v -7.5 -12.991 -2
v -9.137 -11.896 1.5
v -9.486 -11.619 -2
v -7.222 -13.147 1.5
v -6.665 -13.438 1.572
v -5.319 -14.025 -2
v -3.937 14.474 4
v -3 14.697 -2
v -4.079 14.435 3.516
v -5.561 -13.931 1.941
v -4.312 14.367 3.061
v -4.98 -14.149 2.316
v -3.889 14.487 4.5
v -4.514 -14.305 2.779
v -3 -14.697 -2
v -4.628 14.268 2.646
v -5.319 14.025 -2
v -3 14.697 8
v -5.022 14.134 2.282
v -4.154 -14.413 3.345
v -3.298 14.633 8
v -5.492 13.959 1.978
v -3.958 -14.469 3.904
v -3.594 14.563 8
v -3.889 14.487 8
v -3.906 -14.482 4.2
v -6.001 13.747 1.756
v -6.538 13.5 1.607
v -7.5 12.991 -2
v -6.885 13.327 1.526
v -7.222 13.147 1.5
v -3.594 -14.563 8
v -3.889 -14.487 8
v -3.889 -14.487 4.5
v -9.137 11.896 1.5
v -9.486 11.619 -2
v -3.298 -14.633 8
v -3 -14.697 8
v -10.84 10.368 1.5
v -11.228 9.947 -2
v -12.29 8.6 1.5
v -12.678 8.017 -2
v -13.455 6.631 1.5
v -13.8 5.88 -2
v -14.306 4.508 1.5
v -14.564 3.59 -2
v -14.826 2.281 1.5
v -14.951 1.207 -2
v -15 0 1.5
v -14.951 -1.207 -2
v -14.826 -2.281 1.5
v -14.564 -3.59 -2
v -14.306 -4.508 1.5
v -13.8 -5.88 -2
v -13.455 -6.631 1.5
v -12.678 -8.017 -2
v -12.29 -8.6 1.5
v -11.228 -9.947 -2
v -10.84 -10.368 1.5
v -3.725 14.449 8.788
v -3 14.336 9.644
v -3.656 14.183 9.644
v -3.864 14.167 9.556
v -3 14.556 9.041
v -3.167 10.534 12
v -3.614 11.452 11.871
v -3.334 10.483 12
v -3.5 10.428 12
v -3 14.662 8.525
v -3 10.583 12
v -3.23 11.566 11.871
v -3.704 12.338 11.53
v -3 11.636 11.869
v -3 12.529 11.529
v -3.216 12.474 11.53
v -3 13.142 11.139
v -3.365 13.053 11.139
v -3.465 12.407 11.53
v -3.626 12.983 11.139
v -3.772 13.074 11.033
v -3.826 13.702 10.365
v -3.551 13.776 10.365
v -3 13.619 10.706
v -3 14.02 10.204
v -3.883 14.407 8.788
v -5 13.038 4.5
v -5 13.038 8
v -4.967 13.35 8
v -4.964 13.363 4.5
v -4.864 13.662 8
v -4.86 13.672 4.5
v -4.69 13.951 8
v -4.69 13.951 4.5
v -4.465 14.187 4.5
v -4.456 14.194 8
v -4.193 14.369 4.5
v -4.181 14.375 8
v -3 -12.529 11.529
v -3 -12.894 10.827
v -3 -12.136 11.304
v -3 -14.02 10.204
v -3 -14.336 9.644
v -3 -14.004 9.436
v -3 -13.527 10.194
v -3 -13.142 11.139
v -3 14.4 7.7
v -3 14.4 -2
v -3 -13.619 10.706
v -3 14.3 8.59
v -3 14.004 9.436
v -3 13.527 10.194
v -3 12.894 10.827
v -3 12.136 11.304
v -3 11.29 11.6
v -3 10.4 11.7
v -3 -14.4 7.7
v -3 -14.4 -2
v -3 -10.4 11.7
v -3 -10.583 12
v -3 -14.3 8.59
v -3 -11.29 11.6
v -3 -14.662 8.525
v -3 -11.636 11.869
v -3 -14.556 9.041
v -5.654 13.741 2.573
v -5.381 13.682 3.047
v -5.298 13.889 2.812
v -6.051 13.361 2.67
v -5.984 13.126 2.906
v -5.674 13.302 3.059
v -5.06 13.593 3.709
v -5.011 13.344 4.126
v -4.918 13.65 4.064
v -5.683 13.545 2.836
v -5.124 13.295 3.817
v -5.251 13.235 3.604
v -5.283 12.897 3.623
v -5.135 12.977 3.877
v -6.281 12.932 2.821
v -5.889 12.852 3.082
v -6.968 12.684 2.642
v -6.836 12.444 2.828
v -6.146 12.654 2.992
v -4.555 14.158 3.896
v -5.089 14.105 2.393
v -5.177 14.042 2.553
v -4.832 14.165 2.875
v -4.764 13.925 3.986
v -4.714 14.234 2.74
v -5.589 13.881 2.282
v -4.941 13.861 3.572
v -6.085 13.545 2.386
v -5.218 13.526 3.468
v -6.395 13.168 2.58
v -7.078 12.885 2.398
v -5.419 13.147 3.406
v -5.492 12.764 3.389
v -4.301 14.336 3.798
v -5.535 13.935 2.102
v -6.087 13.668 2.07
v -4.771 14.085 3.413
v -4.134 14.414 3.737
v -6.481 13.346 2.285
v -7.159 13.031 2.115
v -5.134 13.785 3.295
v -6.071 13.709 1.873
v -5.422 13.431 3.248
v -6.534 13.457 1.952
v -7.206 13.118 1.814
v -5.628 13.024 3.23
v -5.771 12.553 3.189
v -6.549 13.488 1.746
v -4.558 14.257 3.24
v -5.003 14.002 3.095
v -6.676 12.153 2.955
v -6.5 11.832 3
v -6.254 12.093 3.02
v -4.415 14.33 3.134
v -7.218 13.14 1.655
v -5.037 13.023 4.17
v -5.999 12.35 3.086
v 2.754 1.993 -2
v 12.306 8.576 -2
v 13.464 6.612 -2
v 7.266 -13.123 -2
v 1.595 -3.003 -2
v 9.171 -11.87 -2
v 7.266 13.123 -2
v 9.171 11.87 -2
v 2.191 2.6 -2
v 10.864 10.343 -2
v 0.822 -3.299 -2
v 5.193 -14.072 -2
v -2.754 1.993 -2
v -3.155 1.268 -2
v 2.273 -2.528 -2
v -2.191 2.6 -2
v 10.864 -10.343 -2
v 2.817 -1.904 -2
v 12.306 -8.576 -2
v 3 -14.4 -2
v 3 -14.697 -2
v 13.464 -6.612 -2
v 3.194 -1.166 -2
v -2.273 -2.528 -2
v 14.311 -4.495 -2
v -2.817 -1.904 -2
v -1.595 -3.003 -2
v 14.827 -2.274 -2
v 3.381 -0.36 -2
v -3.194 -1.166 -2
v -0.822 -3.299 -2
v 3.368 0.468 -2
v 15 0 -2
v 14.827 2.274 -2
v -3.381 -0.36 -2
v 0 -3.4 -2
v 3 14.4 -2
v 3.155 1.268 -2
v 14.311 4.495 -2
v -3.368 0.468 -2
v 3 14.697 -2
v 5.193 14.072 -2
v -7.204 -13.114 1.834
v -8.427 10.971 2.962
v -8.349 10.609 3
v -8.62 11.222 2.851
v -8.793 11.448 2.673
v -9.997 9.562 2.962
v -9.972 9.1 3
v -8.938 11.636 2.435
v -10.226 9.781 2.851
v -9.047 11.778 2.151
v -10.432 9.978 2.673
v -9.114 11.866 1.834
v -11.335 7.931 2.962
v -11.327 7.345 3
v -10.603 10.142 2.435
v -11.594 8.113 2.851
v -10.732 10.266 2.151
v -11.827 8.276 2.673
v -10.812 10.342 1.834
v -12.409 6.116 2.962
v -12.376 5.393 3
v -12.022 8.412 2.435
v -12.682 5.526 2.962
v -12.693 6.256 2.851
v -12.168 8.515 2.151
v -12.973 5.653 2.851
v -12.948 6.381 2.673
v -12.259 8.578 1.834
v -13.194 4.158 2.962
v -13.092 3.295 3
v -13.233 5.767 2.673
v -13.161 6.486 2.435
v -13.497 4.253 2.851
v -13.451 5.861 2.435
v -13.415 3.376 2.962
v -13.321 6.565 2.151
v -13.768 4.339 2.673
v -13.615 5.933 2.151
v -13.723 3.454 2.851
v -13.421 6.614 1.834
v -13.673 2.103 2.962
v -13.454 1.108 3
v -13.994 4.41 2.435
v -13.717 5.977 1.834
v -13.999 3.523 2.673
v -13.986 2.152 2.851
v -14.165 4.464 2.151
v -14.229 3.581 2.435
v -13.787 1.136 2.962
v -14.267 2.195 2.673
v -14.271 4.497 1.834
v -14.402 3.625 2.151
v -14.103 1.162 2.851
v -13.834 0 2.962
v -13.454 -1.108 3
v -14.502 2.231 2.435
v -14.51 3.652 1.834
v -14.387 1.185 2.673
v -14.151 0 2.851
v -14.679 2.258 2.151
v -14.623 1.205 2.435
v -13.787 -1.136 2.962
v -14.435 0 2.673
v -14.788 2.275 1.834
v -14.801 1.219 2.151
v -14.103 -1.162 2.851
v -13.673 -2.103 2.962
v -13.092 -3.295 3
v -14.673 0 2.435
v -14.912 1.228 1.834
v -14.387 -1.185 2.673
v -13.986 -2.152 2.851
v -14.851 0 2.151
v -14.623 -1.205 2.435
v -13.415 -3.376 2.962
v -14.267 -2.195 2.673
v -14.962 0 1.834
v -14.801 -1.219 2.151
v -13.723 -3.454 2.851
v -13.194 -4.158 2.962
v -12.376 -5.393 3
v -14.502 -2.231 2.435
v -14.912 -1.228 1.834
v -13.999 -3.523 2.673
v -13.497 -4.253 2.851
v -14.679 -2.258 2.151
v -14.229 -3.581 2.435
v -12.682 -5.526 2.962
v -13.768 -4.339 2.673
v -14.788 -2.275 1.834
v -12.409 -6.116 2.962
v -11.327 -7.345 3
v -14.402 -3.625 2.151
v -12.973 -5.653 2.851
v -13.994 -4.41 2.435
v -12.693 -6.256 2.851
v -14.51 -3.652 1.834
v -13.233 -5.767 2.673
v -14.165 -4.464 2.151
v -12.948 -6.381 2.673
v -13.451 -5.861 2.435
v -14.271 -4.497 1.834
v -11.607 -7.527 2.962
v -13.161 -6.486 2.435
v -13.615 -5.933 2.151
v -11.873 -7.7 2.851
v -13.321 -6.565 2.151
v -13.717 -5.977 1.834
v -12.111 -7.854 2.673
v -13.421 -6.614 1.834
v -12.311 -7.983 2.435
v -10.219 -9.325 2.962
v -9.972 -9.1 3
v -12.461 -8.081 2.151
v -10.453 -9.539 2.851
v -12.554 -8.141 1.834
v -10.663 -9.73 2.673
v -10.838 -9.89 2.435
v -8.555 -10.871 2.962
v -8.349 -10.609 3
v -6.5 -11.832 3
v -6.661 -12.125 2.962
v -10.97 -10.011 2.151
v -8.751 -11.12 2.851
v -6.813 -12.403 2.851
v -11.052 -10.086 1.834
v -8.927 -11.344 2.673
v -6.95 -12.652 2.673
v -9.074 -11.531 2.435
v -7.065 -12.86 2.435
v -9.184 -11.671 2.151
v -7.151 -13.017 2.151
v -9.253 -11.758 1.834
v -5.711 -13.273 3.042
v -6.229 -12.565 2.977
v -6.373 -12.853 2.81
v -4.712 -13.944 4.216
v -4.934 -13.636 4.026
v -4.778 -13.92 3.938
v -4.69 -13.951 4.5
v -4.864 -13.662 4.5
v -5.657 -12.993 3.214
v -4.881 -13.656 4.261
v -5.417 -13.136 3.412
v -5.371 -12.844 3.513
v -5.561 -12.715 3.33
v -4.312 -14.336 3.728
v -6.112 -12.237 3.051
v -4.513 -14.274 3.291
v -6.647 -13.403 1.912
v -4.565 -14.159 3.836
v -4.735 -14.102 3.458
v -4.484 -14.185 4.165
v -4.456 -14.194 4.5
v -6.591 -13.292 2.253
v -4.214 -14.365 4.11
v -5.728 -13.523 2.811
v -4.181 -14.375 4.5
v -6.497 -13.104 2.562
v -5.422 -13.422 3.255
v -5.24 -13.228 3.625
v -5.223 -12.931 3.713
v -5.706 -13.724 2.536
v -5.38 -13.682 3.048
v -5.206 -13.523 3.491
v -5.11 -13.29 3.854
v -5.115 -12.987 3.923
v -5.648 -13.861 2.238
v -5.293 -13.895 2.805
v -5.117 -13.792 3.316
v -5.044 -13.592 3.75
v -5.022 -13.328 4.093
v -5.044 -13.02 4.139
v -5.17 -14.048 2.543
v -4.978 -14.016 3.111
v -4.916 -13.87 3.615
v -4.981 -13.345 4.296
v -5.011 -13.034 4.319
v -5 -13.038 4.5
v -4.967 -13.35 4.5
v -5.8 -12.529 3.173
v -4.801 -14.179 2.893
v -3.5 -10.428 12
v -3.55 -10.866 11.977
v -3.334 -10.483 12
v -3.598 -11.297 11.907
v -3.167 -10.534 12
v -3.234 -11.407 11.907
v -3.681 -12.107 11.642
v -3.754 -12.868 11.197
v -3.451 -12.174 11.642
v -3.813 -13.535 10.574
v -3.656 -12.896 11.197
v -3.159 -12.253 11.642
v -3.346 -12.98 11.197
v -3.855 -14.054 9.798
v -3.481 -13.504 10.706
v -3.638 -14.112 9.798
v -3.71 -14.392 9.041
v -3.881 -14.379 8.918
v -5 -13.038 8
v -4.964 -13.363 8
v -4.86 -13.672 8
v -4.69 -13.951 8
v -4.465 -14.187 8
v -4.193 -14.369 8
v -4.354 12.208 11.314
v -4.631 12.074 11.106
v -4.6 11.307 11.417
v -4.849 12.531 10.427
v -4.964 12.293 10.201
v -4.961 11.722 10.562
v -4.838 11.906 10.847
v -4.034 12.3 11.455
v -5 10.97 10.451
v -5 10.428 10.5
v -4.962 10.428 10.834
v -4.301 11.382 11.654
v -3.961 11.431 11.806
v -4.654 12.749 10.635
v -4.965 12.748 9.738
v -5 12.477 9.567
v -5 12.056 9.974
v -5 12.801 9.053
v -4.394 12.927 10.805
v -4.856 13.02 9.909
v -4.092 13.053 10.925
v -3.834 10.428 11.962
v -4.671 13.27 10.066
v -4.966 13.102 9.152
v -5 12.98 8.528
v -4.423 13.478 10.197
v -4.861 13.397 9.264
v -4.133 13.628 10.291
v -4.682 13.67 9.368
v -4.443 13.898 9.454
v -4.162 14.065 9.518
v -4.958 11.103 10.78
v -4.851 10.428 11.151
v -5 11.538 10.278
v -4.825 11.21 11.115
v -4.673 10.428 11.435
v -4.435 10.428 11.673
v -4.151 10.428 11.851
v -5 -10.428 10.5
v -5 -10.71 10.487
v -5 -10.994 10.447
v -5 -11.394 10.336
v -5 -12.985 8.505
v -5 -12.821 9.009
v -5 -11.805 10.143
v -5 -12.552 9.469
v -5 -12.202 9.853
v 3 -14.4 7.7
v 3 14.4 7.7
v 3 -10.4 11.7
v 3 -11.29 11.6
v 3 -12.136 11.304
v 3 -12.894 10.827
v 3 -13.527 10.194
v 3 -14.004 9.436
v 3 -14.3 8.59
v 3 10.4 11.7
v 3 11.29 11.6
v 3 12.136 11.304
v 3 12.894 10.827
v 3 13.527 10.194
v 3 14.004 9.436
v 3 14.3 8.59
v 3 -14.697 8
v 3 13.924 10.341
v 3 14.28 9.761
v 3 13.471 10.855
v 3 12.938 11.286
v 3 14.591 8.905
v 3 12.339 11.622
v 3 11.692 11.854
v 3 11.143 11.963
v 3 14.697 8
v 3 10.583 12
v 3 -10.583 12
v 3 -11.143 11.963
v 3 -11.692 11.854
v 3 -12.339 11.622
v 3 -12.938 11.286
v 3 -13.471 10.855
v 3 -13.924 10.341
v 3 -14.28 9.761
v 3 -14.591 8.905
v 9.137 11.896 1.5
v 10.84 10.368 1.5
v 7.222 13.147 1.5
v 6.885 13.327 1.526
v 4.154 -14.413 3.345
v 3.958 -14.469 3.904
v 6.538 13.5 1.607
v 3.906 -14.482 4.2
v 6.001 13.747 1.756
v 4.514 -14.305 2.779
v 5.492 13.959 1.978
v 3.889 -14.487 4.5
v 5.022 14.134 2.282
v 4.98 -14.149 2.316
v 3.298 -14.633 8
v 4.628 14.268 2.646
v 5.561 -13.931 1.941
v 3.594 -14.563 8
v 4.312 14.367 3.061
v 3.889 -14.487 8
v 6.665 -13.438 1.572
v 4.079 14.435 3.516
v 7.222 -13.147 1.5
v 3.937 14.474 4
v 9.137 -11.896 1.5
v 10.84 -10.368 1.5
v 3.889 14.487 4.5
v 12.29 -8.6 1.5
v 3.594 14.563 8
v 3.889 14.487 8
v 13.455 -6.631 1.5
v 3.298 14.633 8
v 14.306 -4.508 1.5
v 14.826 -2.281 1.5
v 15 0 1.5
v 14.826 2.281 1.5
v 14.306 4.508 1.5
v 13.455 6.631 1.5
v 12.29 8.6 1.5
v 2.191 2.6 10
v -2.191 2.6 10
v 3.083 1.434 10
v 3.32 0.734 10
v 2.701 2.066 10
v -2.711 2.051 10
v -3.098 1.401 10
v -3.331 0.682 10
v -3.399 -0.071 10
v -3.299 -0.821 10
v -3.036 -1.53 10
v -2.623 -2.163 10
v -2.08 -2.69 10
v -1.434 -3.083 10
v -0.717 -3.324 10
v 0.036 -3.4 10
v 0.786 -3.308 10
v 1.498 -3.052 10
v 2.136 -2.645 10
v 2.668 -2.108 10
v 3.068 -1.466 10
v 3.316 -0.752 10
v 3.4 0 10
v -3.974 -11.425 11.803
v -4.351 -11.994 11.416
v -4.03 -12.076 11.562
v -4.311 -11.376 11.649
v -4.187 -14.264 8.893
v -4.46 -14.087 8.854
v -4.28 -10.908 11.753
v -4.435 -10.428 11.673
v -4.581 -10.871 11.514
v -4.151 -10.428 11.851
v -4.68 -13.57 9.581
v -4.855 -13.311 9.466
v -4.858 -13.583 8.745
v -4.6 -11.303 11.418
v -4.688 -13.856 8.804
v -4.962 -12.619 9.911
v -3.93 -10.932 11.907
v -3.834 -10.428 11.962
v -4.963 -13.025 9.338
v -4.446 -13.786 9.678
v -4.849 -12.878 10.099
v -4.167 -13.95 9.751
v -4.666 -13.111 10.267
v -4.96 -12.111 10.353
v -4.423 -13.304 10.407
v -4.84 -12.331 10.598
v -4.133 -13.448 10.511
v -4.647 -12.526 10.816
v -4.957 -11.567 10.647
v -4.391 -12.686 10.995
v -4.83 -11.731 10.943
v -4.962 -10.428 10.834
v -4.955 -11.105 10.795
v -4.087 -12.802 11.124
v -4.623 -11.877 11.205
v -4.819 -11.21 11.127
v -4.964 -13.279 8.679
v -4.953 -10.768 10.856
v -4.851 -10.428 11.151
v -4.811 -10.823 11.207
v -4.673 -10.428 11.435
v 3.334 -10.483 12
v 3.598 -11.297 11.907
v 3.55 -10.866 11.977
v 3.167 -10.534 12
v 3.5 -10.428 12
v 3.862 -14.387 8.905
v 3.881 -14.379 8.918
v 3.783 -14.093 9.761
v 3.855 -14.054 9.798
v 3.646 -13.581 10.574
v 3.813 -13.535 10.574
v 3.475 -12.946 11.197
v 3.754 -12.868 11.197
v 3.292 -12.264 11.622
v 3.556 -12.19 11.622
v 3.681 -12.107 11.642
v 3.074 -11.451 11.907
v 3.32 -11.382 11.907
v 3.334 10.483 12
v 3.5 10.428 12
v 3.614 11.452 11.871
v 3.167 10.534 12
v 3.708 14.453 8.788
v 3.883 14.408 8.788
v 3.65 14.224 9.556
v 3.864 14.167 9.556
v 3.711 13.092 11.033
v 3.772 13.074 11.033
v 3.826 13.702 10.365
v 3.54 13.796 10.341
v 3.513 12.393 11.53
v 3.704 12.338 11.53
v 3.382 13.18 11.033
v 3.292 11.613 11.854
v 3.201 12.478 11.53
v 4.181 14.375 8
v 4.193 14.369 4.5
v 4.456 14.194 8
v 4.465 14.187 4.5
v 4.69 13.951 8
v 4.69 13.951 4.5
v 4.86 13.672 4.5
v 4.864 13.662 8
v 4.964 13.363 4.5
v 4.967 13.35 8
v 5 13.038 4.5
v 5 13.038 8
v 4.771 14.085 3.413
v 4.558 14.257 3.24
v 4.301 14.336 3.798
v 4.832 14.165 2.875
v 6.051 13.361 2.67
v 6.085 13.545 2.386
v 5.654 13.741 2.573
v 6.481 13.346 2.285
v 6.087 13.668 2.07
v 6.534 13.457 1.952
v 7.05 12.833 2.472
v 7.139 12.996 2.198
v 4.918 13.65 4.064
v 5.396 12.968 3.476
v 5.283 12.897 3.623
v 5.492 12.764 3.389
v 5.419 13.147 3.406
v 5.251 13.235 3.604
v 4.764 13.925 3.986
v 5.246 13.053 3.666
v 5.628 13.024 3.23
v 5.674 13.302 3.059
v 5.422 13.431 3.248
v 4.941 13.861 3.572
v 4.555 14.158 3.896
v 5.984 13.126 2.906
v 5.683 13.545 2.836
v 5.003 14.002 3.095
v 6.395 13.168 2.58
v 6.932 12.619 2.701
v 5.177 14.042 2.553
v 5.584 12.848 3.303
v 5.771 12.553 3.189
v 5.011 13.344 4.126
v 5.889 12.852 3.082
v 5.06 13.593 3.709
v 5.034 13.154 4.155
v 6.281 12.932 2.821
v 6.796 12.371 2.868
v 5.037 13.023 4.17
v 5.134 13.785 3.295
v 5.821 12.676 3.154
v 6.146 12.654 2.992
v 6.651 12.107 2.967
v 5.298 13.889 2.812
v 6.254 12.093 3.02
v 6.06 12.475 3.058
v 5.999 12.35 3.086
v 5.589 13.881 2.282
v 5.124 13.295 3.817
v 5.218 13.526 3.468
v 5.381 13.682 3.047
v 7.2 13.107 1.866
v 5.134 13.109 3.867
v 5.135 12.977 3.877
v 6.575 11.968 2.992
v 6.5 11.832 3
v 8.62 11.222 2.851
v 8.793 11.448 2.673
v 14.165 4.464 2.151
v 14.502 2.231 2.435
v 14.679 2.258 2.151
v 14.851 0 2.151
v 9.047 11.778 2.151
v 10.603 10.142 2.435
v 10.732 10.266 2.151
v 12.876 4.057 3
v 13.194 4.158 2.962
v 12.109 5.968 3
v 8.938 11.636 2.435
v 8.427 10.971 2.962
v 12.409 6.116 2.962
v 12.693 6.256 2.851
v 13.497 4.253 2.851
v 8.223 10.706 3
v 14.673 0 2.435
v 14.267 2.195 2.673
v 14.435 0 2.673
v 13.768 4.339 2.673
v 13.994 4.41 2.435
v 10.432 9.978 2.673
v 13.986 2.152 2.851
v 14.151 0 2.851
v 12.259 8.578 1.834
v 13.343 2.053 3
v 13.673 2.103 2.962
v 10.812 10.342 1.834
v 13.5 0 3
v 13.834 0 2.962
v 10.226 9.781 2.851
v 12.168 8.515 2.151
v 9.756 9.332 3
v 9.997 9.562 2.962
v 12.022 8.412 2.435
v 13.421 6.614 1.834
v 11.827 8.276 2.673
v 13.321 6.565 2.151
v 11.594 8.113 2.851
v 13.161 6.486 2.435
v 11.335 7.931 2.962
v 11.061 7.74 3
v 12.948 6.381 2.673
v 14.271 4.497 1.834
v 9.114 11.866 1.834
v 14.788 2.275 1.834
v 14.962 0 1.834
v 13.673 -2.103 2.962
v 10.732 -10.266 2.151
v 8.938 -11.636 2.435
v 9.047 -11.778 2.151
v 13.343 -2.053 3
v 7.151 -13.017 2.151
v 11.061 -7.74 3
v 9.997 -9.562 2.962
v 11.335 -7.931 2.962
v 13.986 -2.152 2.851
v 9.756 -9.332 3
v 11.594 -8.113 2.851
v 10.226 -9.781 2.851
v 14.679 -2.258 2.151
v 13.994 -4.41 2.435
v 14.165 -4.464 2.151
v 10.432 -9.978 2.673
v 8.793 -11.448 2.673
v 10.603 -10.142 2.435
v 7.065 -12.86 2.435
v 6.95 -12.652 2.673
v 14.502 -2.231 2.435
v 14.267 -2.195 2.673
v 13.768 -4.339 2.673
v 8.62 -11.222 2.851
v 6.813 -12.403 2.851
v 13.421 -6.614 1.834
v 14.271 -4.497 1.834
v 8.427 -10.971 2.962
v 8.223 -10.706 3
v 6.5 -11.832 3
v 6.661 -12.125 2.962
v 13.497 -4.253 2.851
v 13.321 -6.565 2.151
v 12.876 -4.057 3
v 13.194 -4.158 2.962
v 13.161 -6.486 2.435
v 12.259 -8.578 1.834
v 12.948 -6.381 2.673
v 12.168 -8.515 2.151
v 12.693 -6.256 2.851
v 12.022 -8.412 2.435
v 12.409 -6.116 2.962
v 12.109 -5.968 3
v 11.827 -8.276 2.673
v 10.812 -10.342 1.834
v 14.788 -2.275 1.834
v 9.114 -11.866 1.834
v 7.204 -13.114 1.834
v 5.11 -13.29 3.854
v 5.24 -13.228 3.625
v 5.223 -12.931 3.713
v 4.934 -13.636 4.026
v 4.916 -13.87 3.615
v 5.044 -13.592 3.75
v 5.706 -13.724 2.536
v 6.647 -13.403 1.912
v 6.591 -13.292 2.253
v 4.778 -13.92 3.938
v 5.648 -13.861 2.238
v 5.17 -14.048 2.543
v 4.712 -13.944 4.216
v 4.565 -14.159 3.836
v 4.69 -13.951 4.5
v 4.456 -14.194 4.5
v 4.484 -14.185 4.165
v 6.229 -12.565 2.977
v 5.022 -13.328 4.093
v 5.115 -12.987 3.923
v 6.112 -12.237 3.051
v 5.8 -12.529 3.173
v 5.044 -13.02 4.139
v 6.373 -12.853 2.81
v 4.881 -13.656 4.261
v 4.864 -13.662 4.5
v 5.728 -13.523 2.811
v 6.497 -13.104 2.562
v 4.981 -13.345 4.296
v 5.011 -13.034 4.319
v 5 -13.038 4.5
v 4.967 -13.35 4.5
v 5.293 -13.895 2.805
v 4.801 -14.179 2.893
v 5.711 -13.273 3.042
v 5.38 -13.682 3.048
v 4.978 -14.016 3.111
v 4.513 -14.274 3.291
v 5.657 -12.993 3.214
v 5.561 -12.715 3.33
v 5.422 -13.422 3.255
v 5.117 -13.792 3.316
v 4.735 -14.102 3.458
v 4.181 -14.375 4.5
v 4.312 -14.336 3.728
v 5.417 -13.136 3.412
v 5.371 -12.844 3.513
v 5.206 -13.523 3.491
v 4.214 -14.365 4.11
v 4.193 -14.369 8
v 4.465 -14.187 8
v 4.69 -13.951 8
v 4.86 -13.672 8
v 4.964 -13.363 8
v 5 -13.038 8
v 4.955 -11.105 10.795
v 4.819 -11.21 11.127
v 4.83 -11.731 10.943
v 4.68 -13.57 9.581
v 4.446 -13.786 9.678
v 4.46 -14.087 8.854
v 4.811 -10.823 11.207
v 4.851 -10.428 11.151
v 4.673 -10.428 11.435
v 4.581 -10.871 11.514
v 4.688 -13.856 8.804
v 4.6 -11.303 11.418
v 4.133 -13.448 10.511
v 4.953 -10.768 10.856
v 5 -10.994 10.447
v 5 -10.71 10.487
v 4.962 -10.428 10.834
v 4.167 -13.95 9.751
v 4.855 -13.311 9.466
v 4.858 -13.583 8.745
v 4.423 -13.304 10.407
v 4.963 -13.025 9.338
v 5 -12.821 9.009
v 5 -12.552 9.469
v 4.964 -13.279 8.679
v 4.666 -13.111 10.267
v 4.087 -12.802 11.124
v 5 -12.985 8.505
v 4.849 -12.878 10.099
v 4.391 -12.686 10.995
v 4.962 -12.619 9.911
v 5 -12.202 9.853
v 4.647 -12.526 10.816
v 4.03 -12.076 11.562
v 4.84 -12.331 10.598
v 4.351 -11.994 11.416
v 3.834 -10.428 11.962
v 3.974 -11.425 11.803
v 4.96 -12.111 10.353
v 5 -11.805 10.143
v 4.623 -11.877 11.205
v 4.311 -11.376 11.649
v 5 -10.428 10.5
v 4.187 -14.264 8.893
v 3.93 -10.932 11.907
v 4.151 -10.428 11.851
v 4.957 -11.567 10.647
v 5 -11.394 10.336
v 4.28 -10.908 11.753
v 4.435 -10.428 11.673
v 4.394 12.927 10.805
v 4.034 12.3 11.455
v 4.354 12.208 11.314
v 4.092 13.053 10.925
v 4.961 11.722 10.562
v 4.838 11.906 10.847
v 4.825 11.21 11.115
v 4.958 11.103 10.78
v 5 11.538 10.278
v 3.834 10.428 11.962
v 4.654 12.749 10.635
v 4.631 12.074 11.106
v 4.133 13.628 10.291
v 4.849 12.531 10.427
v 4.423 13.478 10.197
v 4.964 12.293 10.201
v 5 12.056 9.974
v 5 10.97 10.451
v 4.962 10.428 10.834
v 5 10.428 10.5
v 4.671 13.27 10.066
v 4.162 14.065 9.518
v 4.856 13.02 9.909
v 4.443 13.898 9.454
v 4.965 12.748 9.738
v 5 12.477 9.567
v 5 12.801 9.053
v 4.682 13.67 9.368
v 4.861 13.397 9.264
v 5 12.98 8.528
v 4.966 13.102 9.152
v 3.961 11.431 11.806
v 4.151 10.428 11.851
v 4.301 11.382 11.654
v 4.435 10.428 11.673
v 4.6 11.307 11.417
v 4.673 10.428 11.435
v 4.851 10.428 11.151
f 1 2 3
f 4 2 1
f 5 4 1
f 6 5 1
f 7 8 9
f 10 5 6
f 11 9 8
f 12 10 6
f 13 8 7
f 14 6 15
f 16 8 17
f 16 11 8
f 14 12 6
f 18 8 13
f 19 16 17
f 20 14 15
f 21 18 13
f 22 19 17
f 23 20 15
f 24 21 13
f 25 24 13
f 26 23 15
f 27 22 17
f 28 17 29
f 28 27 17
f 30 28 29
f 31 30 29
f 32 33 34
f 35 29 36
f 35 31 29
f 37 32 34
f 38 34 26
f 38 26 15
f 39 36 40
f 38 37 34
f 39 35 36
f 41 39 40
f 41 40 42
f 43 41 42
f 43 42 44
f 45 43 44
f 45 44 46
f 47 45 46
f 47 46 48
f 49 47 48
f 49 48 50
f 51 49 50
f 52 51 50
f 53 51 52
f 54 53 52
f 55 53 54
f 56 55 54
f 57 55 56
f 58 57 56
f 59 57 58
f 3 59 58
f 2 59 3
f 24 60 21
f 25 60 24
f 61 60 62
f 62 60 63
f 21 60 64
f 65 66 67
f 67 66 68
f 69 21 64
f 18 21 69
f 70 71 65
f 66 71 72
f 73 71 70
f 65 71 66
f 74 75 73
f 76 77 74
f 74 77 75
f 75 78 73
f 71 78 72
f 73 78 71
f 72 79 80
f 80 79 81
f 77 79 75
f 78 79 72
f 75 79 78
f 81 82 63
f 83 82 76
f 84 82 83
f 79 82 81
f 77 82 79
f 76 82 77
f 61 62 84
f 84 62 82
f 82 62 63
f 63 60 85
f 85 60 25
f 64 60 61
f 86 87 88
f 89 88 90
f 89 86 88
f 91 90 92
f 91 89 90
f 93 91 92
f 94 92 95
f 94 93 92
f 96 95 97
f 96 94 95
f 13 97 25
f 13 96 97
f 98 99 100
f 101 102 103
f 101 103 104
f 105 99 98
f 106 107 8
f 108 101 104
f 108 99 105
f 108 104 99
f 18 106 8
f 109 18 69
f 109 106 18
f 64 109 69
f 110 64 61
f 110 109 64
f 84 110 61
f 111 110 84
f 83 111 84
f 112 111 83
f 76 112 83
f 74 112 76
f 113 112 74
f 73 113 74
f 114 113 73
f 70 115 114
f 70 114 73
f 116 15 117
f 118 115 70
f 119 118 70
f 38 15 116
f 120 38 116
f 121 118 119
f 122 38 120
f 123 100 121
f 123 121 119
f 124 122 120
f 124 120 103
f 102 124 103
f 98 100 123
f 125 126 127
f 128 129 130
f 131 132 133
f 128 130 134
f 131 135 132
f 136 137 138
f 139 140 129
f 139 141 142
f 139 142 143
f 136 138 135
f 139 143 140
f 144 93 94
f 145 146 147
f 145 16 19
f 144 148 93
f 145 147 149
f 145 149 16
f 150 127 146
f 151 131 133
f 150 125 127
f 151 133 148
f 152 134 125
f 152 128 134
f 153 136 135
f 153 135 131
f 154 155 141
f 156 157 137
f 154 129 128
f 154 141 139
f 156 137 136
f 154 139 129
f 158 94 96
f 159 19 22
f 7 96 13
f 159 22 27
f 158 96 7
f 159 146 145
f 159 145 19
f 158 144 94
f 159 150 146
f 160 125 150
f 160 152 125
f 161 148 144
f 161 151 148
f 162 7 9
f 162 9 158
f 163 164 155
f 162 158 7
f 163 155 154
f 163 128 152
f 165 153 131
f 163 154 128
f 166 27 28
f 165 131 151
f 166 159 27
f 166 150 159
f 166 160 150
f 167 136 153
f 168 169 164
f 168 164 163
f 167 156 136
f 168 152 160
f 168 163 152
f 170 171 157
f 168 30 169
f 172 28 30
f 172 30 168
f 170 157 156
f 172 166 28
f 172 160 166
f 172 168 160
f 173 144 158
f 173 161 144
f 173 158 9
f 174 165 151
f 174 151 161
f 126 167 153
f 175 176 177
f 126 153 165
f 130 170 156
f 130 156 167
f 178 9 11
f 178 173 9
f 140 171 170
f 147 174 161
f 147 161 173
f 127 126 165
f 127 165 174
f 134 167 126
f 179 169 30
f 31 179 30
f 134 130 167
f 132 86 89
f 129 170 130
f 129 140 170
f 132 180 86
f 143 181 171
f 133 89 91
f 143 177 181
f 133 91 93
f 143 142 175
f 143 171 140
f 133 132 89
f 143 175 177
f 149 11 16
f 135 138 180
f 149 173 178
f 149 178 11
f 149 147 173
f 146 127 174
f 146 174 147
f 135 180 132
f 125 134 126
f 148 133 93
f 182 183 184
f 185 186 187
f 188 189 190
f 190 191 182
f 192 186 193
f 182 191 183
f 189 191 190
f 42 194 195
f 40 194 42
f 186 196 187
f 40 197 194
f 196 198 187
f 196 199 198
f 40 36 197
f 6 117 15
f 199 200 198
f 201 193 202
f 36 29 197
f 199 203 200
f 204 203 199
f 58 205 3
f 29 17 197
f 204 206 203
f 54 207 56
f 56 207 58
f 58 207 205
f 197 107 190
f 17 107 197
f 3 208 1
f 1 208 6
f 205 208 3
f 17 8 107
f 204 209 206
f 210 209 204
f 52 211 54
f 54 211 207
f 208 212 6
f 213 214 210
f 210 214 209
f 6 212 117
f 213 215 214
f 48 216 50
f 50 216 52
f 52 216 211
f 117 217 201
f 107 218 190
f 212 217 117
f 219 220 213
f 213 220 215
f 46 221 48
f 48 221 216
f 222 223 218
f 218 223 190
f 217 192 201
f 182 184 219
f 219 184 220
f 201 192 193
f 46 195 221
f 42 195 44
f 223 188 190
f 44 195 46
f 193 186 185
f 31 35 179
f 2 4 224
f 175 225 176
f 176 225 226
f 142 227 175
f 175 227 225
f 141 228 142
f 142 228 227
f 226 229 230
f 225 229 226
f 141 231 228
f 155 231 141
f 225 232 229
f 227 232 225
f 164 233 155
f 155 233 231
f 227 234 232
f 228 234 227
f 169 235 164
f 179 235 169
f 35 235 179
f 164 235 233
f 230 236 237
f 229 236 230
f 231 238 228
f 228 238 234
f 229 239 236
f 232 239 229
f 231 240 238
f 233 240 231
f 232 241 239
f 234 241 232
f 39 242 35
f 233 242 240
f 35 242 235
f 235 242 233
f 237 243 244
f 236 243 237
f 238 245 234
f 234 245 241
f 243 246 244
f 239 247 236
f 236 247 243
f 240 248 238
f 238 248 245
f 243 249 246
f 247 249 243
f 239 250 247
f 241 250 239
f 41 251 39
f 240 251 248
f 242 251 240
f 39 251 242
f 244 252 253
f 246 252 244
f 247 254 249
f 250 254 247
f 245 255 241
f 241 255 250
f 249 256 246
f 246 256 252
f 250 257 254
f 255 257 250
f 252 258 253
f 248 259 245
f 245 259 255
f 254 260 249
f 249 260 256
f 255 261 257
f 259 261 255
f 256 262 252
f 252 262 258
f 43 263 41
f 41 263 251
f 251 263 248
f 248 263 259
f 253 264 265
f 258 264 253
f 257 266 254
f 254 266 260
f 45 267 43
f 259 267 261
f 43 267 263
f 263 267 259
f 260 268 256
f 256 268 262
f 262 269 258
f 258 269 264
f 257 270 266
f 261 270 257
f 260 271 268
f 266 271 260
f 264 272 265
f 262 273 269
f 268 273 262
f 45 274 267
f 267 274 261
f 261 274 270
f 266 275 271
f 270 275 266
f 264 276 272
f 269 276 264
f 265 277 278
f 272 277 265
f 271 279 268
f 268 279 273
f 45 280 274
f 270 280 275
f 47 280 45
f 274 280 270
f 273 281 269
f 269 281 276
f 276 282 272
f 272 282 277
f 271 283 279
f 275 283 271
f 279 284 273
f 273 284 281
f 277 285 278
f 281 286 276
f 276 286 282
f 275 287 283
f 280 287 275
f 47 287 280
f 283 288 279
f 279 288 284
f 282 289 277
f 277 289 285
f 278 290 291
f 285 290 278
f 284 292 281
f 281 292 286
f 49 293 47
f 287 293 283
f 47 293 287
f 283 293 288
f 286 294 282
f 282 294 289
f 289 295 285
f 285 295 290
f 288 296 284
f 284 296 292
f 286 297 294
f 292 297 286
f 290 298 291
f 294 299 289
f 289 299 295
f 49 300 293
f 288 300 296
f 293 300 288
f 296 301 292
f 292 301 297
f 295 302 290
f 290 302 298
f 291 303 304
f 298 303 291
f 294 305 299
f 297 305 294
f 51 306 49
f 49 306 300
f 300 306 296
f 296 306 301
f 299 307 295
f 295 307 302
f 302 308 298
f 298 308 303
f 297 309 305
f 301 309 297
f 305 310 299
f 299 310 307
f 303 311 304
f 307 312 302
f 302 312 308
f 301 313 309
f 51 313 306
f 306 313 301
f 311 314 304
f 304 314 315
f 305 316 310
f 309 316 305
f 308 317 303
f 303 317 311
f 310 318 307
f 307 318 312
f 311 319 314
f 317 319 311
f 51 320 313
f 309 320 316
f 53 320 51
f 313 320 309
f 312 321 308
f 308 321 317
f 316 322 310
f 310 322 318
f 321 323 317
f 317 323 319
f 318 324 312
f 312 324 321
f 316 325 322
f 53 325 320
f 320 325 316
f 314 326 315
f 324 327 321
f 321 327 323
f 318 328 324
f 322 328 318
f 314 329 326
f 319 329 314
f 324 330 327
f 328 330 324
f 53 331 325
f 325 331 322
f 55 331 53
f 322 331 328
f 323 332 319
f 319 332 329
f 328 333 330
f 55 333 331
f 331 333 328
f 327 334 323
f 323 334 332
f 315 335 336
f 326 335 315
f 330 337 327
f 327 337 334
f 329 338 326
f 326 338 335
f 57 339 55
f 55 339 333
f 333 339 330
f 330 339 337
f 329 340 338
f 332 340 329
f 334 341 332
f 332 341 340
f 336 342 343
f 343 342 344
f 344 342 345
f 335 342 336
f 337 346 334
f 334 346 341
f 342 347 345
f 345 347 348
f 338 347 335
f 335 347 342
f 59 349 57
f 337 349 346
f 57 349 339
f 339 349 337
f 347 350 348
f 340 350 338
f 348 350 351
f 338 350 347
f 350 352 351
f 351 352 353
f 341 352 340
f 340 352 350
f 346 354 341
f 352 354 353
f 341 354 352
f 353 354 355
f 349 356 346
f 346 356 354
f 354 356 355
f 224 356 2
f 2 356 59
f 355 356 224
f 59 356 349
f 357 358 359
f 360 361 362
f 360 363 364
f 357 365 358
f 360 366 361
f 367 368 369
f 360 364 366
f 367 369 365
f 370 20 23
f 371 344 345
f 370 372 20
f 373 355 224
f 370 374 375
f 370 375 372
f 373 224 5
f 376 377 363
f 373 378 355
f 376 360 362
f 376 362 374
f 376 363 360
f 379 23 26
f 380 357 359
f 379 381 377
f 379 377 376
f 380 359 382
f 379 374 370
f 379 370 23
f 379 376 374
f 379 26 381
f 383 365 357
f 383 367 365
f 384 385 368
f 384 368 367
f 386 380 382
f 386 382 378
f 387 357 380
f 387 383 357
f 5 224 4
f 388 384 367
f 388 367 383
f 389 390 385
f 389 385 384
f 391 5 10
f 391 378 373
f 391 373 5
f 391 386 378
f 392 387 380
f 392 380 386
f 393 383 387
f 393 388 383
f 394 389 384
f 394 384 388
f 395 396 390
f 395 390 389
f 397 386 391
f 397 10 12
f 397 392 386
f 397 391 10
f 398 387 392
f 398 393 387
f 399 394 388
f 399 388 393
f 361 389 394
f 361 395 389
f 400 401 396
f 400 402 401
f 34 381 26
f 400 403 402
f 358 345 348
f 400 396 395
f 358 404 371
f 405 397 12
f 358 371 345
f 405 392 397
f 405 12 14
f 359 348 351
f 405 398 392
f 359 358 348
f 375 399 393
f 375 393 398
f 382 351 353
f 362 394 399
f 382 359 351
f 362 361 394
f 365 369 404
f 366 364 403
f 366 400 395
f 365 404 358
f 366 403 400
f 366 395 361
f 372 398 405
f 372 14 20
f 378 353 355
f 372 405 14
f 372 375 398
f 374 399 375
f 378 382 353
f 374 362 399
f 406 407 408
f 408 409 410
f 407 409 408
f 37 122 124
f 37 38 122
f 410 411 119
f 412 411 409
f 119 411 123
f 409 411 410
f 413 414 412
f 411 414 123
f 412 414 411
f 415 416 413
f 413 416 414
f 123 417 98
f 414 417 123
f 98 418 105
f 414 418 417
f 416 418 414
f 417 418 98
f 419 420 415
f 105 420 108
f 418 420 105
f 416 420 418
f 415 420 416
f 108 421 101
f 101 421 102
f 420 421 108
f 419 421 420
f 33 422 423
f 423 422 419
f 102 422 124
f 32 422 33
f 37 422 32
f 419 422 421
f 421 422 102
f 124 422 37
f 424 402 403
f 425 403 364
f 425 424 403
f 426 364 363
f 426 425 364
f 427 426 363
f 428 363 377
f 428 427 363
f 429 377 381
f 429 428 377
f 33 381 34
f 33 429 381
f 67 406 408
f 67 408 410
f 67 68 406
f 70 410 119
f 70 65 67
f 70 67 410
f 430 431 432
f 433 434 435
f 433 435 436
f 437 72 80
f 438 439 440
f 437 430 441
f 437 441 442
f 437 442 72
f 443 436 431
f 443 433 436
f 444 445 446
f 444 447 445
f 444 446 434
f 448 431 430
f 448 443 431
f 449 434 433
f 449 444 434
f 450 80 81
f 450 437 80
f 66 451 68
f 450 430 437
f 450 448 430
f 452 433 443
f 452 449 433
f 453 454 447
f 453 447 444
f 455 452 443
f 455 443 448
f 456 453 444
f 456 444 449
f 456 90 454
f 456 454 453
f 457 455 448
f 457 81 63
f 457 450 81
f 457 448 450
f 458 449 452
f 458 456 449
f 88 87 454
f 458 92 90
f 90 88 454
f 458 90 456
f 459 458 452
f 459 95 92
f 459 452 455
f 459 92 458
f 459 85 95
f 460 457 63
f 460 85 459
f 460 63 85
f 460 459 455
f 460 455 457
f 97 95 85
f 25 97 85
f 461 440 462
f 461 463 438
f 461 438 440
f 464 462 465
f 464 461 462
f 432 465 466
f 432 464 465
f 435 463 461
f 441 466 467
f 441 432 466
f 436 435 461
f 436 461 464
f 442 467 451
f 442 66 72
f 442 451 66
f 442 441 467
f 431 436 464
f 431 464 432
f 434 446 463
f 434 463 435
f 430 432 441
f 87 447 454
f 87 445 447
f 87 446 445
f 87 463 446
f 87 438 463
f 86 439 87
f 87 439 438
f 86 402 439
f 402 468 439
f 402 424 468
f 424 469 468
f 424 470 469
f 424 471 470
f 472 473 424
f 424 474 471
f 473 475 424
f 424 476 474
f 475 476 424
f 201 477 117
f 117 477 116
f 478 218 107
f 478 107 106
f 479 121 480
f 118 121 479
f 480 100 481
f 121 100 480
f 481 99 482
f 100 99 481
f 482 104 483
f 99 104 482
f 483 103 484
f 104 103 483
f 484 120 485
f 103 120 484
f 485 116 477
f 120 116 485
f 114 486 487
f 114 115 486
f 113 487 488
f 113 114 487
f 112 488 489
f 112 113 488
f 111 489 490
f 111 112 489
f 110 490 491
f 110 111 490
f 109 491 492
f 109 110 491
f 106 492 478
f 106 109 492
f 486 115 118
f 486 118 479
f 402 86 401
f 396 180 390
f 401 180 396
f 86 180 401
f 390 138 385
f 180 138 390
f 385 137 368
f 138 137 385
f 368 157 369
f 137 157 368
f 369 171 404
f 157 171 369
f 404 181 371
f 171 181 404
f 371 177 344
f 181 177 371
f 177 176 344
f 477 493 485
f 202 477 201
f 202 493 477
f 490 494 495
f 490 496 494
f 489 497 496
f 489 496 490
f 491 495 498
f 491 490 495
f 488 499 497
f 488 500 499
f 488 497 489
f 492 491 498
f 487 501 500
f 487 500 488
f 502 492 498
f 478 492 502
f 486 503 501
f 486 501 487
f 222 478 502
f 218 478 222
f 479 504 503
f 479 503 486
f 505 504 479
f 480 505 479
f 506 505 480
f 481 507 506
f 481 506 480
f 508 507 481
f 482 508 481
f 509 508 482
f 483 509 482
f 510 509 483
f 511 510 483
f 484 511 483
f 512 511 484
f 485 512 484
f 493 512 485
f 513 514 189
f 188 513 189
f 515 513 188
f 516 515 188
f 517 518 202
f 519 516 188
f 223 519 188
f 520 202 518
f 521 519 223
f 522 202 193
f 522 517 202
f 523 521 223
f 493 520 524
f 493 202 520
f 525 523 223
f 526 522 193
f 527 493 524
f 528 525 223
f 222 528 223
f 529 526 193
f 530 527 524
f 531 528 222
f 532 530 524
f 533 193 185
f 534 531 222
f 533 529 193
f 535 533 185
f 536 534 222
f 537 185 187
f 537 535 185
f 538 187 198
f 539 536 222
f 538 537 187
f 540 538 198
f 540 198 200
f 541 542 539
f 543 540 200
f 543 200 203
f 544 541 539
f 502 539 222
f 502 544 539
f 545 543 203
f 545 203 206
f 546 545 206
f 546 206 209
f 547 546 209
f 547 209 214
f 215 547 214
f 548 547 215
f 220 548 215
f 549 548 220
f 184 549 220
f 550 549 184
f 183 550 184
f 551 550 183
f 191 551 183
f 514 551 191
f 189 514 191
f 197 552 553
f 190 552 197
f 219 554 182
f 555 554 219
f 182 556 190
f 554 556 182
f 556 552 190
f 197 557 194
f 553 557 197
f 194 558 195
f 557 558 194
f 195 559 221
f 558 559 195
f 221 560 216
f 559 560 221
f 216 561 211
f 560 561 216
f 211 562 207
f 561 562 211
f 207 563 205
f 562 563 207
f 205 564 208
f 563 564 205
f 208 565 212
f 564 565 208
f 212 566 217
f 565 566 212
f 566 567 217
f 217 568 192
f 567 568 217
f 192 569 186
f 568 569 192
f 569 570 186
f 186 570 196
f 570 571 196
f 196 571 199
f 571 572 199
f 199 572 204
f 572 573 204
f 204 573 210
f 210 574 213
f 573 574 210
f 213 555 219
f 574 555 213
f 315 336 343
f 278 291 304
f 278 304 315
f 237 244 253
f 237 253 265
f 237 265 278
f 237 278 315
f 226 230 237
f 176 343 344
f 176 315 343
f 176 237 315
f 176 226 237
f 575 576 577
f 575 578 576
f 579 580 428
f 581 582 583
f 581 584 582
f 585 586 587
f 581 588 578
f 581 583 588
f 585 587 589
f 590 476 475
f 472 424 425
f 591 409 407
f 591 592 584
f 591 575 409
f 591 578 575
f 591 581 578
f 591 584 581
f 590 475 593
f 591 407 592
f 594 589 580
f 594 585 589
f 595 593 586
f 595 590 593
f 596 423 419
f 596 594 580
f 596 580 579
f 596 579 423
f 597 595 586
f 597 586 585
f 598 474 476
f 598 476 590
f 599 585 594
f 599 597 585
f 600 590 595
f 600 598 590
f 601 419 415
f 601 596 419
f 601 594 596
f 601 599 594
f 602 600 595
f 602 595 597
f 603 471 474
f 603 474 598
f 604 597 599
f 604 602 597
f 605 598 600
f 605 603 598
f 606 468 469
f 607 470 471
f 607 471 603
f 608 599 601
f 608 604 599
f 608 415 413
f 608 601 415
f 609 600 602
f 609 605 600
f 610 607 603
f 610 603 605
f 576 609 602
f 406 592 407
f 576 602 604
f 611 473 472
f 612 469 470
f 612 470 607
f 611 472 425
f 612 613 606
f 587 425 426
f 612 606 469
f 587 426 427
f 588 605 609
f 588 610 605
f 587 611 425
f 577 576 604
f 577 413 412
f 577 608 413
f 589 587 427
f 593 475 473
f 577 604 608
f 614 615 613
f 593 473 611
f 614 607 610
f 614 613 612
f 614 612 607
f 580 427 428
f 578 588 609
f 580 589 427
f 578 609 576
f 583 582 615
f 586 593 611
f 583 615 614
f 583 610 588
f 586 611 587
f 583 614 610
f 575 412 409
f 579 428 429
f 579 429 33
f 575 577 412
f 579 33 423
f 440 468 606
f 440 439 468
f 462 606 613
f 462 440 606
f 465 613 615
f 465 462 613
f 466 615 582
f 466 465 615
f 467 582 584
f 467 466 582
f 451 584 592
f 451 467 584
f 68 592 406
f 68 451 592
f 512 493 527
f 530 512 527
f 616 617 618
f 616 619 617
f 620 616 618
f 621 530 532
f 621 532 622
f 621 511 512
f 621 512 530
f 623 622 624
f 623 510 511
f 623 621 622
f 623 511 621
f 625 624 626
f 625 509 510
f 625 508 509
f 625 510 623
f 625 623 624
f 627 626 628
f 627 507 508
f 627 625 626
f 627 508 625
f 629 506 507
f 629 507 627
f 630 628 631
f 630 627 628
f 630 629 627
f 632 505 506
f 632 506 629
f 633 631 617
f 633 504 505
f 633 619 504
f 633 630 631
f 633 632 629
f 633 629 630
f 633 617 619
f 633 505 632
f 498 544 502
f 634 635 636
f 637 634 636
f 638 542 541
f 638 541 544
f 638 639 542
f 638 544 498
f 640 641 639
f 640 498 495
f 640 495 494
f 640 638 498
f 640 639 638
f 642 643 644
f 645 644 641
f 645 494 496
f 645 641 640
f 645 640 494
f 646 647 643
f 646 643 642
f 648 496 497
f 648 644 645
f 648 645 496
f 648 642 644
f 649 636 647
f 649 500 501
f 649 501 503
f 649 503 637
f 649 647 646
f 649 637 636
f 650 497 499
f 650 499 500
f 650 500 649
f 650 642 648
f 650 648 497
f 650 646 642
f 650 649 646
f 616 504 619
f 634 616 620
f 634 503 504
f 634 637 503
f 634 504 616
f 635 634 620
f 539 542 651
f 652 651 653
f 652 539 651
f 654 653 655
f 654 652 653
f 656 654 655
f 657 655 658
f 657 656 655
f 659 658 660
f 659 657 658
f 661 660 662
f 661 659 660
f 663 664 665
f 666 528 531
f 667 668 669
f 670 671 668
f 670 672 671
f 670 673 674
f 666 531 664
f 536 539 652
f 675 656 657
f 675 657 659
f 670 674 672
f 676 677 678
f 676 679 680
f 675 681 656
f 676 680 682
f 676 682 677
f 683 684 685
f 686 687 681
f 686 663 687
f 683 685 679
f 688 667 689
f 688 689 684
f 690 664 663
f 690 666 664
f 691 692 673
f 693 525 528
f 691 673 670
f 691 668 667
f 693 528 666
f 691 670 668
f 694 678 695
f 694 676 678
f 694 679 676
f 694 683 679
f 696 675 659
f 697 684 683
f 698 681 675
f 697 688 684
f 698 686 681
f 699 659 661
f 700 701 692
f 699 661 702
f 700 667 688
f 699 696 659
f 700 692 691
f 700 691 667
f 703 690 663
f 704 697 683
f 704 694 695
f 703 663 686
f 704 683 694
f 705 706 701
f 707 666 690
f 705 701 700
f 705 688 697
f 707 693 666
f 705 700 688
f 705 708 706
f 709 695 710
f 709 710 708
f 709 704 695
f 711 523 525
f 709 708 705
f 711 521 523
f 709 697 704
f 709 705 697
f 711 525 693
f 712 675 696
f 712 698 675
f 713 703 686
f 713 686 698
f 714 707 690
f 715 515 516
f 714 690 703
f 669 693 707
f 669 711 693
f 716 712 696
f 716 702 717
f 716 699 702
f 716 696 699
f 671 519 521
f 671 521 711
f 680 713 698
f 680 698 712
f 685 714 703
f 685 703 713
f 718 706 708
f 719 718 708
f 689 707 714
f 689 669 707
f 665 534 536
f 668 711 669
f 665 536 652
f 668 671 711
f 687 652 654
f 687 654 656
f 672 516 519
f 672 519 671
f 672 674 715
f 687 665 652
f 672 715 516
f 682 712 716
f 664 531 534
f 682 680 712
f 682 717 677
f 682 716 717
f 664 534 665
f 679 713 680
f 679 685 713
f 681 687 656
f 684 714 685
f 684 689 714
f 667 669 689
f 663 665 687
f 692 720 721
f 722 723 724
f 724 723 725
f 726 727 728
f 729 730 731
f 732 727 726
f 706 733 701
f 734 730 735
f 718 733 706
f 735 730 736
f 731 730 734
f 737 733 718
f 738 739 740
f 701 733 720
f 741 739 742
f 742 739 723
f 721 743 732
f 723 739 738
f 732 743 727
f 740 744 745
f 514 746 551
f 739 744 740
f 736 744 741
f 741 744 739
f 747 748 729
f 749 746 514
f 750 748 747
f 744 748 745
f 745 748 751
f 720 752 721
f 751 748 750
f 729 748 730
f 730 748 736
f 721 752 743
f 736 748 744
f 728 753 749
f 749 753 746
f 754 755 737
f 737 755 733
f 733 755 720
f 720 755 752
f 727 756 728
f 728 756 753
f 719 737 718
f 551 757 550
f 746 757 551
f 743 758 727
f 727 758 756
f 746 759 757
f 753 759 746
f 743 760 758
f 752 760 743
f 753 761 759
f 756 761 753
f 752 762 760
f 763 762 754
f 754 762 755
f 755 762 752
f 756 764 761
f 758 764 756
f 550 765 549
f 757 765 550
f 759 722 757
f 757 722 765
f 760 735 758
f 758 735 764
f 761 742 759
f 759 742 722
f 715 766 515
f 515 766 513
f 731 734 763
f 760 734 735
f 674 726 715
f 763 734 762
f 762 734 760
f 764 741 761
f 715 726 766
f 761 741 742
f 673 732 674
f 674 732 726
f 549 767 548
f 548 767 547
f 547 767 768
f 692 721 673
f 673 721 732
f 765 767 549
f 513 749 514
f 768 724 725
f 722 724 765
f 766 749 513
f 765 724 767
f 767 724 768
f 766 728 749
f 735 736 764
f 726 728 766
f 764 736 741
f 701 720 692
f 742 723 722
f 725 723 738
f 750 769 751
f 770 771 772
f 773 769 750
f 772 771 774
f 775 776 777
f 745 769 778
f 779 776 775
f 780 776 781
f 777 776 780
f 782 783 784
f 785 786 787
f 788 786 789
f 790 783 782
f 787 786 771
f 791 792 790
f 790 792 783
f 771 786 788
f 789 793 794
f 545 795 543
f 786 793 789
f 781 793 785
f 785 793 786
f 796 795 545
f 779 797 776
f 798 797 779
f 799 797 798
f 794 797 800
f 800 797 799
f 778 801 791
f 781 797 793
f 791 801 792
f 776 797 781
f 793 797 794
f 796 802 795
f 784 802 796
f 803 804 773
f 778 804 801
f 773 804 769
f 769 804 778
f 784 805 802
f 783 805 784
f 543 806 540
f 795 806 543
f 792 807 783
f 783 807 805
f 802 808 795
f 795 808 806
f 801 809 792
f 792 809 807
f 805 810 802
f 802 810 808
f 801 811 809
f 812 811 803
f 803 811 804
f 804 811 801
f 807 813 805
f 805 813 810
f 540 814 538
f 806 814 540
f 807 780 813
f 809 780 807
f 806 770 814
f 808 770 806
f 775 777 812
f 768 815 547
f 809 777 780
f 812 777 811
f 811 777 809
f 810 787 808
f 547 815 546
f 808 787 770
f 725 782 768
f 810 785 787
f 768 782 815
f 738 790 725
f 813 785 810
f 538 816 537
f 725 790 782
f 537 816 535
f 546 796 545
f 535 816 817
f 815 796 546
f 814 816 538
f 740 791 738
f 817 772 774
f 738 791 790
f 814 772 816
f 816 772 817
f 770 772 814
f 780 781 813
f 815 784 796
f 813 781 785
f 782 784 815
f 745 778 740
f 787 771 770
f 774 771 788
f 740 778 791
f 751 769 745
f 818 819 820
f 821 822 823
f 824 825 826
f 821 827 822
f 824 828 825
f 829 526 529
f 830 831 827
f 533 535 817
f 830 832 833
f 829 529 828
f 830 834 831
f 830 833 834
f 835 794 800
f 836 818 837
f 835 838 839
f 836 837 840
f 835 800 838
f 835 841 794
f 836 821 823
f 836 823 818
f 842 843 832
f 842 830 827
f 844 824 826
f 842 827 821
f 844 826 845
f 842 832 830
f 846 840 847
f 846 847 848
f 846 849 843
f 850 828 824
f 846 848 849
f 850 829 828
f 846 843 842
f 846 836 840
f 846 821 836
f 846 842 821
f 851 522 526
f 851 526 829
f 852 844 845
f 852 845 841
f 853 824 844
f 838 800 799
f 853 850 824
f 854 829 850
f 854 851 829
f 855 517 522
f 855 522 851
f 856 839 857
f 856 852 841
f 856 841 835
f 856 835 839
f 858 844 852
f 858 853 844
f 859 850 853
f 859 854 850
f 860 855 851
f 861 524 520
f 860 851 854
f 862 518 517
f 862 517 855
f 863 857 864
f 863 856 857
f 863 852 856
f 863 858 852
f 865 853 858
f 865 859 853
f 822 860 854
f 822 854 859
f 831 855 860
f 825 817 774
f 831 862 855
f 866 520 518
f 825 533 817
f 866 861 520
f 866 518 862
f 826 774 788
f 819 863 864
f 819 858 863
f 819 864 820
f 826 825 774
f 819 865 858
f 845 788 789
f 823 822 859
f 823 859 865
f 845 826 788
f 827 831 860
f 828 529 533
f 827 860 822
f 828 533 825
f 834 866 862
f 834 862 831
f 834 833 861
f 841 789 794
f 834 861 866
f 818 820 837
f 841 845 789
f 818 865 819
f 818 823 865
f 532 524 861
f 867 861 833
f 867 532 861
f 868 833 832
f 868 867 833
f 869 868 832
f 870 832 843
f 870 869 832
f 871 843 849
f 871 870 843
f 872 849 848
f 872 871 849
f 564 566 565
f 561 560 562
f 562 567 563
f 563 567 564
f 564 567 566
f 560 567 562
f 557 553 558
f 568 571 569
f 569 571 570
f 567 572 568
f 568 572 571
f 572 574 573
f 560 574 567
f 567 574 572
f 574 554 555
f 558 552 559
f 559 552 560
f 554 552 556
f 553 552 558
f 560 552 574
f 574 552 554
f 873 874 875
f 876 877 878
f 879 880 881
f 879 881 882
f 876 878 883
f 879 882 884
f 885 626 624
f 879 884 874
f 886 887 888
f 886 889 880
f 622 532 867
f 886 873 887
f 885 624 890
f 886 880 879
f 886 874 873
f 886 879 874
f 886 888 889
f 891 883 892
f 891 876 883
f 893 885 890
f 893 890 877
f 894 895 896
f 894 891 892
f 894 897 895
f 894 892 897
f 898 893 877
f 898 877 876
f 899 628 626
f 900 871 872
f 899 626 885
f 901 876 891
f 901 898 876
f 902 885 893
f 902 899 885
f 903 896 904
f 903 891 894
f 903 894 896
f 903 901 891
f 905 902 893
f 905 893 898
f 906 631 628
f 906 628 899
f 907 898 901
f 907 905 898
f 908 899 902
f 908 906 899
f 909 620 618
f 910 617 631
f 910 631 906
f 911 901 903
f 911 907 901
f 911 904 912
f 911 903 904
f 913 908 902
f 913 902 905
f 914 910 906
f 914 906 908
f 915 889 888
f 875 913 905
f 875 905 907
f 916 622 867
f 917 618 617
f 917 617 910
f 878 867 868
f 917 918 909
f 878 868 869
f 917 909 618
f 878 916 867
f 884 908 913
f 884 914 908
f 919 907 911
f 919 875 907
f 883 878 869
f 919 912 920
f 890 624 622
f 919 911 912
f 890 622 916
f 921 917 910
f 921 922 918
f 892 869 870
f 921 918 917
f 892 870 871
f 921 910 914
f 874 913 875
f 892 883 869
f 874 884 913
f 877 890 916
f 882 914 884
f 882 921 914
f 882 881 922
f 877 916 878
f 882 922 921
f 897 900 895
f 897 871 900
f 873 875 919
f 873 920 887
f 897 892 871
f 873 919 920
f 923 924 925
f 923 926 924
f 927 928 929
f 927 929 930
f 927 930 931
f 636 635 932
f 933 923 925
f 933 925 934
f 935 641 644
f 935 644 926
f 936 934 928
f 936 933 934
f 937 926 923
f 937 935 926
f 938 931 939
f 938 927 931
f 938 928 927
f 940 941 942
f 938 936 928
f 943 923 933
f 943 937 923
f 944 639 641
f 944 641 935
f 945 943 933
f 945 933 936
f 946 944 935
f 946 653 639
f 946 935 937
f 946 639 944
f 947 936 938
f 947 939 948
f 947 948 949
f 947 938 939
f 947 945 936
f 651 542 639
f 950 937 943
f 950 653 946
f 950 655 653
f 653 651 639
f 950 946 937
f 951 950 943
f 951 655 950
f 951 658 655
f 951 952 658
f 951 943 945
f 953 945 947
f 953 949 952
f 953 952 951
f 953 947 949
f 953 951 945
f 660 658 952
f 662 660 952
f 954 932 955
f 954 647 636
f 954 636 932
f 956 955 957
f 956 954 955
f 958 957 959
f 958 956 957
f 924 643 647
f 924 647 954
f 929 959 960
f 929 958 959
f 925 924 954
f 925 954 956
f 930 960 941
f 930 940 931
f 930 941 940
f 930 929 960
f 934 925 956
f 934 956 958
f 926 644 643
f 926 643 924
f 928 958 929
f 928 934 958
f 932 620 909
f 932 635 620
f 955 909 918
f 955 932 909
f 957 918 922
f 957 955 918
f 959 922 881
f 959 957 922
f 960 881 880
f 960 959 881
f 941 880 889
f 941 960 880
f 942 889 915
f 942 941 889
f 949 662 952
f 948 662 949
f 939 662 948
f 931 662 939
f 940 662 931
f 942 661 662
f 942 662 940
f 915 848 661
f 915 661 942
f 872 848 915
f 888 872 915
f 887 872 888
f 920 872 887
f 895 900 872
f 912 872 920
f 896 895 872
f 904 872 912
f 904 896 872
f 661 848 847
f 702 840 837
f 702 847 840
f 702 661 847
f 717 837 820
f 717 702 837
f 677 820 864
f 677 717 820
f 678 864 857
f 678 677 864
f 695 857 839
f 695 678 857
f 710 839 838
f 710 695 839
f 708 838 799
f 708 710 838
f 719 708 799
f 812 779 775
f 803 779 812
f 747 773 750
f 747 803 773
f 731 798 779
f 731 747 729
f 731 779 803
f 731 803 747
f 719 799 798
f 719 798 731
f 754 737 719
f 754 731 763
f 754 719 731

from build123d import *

# Parameters (mm, degrees)
BOX007_W          = 10
BOX007_H          = 10
BOX007_DEPTH      = 17
CYLINDER002_R     = 3.4
CYLINDER002_DEPTH = 13
BOX006_W          = 6
BOX006_H          = 10
BOX006_DEPTH      = 15
BOX005_W          = 6
BOX005_H          = 10
BOX005_DEPTH      = 15
CYLINDER001_R     = 15
CYLINDER001_DEPTH = 2.5
BOX004_W          = 6
BOX004_H          = 10
BOX004_DEPTH      = 15
BOX003_W          = 6
BOX003_H          = 10
BOX003_DEPTH      = 15
BOX002_W          = 6
BOX002_H          = 35
BOX002_DEPTH      = 10
BOX001_W          = 15
BOX001_H          = 35
BOX001_DEPTH      = 10
BOX_W             = 15
BOX_H             = 35
BOX_DEPTH         = 10
CYLINDER_R        = 15
CYLINDER_DEPTH    = 12
FILLET_R          = 4
FILLET001_R       = 1.5
FILLET002_R       = 1.5


with BuildPart() as cubo005:
    # Box007 → Box007 (new body)
    with BuildSketch(Plane(origin=(-5, 2.6, -28), x_dir=(1, 0, 0), z_dir=(0, 0, 1))):
        with Locations((5, 5)):
            Rectangle(BOX007_W, BOX007_H)
    extrude(amount=BOX007_DEPTH)


with BuildPart() as cut007:
    # Cylinder002 → Cylinder002 (new body)
    with BuildSketch(Plane.XY.offset(-26)):
        Circle(CYLINDER002_R)
    extrude(amount=CYLINDER002_DEPTH)

    # Cut007: cut Cubo005
    add(cubo005.part, mode=Mode.SUBTRACT)


with BuildPart() as cut007_1:
    # Cut007 placement: moved
    add(cut007.part.moved(Location((0, 0, 23))))


with BuildPart() as cubo004:
    # Box006 → Box006 (new body)
    with BuildSketch(Plane(origin=(-3, 14.4, -2), x_dir=(1, 0, 0), z_dir=(0, 0, 1))):
        with Locations((3, 5)):
            Rectangle(BOX006_W, BOX006_H)
    extrude(amount=BOX006_DEPTH)


with BuildPart() as cubo003:
    # Box005 → Box005 (new body)
    with BuildSketch(Plane(origin=(-3, -24.4, -2), x_dir=(1, 0, 0), z_dir=(0, 0, 1))):
        with Locations((3, 5)):
            Rectangle(BOX005_W, BOX005_H)
    extrude(amount=BOX005_DEPTH)


with BuildPart() as cilindro001:
    # Cylinder001 → Cylinder001 (new body)
    with BuildSketch(Plane.XY.offset(-2)):
        Circle(CYLINDER001_R)
    extrude(amount=CYLINDER001_DEPTH)


with BuildPart() as cubo002:
    # Box004 → Box004 (new body)
    with BuildSketch(Plane(origin=(-3, -24.4, -2), x_dir=(1, 0, 0), z_dir=(0, 0, 1))):
        with Locations((3, 5)):
            Rectangle(BOX004_W, BOX004_H)
    extrude(amount=BOX004_DEPTH)


with BuildPart() as cubo001:
    # Box003 → Box003 (new body)
    with BuildSketch(Plane(origin=(-3, 14.4, -2), x_dir=(1, 0, 0), z_dir=(0, 0, 1))):
        with Locations((3, 5)):
            Rectangle(BOX003_W, BOX003_H)
    extrude(amount=BOX003_DEPTH)


with BuildPart() as cubo:
    # Box002 → Box002 (new body)
    with BuildSketch(Plane(origin=(-3, -17, 11.7), x_dir=(1, 0, 0), z_dir=(0, 0, 1))):
        with Locations((3, 17.5)):
            Rectangle(BOX002_W, BOX002_H)
    extrude(amount=BOX002_DEPTH)


with BuildPart() as box001:
    # Box001 → Box001 (new body)
    with BuildSketch(Plane(origin=(-20, -15, 3), x_dir=(1, 0, 0), z_dir=(0, 0, 1))):
        with Locations((7.5, 17.5)):
            Rectangle(BOX001_W, BOX001_H)
    extrude(amount=BOX001_DEPTH)


with BuildPart() as box:
    # Box → Box (new body)
    with BuildSketch(Plane(origin=(5, -15, 3), x_dir=(1, 0, 0), z_dir=(0, 0, 1))):
        with Locations((7.5, 17.5)):
            Rectangle(BOX_W, BOX_H)
    extrude(amount=BOX_DEPTH)


with BuildPart() as fuel_knob:
    # Cylinder → Cylinder (new body)
    with BuildSketch(Plane.XY):
        Circle(CYLINDER_R)
    extrude(amount=CYLINDER_DEPTH)

    # Cut: cut Box
    add(box.part, mode=Mode.SUBTRACT)

    # Cut001: cut Box001
    add(box001.part, mode=Mode.SUBTRACT)

    # Cut002: cut Cubo
    add(cubo.part, mode=Mode.SUBTRACT)

    # Cut003: cut Cubo001
    add(cubo001.part, mode=Mode.SUBTRACT)

    # Cut004: cut Cubo002
    add(cubo002.part, mode=Mode.SUBTRACT)

    # Fusion: union Cilindro001
    add(cilindro001.part)

    # Cut005: cut Cubo003
    add(cubo003.part, mode=Mode.SUBTRACT)

    # Cut006: cut Cubo004
    add(cubo004.part, mode=Mode.SUBTRACT)

    # Fillet
    fillet_edges = [fuel_knob.edges().sort_by_distance(p)[0] for p in [
        (0, -14.4, 11.7),
        (0, 14.4, 11.7),
        (-4.009607, -14.454171, 12),
        (-4.009607, 14.454171, 12),
        (4.009607, 14.454171, 12),
        (4.009607, -14.454171, 12),
    ]]
    fillet(fillet_edges, radius=FILLET_R)

    # Fillet001
    fillet001_edges = [fuel_knob.edges().sort_by_distance(p)[0] for p in [
        (-5, 0, 3),
        (5, 0, 3),
    ]]
    fillet(fillet001_edges, radius=FILLET001_R)

    # Fillet002
    fillet002_edges = [fuel_knob.edges().sort_by_distance(p)[0] for p in [
        (-5, 0, 12),
        (5, 0, 12),
    ]]
    fillet(fillet002_edges, radius=FILLET002_R)

    # Cut008: cut Cut007
    add(cut007_1.part, mode=Mode.SUBTRACT)


solid = fuel_knob.part
